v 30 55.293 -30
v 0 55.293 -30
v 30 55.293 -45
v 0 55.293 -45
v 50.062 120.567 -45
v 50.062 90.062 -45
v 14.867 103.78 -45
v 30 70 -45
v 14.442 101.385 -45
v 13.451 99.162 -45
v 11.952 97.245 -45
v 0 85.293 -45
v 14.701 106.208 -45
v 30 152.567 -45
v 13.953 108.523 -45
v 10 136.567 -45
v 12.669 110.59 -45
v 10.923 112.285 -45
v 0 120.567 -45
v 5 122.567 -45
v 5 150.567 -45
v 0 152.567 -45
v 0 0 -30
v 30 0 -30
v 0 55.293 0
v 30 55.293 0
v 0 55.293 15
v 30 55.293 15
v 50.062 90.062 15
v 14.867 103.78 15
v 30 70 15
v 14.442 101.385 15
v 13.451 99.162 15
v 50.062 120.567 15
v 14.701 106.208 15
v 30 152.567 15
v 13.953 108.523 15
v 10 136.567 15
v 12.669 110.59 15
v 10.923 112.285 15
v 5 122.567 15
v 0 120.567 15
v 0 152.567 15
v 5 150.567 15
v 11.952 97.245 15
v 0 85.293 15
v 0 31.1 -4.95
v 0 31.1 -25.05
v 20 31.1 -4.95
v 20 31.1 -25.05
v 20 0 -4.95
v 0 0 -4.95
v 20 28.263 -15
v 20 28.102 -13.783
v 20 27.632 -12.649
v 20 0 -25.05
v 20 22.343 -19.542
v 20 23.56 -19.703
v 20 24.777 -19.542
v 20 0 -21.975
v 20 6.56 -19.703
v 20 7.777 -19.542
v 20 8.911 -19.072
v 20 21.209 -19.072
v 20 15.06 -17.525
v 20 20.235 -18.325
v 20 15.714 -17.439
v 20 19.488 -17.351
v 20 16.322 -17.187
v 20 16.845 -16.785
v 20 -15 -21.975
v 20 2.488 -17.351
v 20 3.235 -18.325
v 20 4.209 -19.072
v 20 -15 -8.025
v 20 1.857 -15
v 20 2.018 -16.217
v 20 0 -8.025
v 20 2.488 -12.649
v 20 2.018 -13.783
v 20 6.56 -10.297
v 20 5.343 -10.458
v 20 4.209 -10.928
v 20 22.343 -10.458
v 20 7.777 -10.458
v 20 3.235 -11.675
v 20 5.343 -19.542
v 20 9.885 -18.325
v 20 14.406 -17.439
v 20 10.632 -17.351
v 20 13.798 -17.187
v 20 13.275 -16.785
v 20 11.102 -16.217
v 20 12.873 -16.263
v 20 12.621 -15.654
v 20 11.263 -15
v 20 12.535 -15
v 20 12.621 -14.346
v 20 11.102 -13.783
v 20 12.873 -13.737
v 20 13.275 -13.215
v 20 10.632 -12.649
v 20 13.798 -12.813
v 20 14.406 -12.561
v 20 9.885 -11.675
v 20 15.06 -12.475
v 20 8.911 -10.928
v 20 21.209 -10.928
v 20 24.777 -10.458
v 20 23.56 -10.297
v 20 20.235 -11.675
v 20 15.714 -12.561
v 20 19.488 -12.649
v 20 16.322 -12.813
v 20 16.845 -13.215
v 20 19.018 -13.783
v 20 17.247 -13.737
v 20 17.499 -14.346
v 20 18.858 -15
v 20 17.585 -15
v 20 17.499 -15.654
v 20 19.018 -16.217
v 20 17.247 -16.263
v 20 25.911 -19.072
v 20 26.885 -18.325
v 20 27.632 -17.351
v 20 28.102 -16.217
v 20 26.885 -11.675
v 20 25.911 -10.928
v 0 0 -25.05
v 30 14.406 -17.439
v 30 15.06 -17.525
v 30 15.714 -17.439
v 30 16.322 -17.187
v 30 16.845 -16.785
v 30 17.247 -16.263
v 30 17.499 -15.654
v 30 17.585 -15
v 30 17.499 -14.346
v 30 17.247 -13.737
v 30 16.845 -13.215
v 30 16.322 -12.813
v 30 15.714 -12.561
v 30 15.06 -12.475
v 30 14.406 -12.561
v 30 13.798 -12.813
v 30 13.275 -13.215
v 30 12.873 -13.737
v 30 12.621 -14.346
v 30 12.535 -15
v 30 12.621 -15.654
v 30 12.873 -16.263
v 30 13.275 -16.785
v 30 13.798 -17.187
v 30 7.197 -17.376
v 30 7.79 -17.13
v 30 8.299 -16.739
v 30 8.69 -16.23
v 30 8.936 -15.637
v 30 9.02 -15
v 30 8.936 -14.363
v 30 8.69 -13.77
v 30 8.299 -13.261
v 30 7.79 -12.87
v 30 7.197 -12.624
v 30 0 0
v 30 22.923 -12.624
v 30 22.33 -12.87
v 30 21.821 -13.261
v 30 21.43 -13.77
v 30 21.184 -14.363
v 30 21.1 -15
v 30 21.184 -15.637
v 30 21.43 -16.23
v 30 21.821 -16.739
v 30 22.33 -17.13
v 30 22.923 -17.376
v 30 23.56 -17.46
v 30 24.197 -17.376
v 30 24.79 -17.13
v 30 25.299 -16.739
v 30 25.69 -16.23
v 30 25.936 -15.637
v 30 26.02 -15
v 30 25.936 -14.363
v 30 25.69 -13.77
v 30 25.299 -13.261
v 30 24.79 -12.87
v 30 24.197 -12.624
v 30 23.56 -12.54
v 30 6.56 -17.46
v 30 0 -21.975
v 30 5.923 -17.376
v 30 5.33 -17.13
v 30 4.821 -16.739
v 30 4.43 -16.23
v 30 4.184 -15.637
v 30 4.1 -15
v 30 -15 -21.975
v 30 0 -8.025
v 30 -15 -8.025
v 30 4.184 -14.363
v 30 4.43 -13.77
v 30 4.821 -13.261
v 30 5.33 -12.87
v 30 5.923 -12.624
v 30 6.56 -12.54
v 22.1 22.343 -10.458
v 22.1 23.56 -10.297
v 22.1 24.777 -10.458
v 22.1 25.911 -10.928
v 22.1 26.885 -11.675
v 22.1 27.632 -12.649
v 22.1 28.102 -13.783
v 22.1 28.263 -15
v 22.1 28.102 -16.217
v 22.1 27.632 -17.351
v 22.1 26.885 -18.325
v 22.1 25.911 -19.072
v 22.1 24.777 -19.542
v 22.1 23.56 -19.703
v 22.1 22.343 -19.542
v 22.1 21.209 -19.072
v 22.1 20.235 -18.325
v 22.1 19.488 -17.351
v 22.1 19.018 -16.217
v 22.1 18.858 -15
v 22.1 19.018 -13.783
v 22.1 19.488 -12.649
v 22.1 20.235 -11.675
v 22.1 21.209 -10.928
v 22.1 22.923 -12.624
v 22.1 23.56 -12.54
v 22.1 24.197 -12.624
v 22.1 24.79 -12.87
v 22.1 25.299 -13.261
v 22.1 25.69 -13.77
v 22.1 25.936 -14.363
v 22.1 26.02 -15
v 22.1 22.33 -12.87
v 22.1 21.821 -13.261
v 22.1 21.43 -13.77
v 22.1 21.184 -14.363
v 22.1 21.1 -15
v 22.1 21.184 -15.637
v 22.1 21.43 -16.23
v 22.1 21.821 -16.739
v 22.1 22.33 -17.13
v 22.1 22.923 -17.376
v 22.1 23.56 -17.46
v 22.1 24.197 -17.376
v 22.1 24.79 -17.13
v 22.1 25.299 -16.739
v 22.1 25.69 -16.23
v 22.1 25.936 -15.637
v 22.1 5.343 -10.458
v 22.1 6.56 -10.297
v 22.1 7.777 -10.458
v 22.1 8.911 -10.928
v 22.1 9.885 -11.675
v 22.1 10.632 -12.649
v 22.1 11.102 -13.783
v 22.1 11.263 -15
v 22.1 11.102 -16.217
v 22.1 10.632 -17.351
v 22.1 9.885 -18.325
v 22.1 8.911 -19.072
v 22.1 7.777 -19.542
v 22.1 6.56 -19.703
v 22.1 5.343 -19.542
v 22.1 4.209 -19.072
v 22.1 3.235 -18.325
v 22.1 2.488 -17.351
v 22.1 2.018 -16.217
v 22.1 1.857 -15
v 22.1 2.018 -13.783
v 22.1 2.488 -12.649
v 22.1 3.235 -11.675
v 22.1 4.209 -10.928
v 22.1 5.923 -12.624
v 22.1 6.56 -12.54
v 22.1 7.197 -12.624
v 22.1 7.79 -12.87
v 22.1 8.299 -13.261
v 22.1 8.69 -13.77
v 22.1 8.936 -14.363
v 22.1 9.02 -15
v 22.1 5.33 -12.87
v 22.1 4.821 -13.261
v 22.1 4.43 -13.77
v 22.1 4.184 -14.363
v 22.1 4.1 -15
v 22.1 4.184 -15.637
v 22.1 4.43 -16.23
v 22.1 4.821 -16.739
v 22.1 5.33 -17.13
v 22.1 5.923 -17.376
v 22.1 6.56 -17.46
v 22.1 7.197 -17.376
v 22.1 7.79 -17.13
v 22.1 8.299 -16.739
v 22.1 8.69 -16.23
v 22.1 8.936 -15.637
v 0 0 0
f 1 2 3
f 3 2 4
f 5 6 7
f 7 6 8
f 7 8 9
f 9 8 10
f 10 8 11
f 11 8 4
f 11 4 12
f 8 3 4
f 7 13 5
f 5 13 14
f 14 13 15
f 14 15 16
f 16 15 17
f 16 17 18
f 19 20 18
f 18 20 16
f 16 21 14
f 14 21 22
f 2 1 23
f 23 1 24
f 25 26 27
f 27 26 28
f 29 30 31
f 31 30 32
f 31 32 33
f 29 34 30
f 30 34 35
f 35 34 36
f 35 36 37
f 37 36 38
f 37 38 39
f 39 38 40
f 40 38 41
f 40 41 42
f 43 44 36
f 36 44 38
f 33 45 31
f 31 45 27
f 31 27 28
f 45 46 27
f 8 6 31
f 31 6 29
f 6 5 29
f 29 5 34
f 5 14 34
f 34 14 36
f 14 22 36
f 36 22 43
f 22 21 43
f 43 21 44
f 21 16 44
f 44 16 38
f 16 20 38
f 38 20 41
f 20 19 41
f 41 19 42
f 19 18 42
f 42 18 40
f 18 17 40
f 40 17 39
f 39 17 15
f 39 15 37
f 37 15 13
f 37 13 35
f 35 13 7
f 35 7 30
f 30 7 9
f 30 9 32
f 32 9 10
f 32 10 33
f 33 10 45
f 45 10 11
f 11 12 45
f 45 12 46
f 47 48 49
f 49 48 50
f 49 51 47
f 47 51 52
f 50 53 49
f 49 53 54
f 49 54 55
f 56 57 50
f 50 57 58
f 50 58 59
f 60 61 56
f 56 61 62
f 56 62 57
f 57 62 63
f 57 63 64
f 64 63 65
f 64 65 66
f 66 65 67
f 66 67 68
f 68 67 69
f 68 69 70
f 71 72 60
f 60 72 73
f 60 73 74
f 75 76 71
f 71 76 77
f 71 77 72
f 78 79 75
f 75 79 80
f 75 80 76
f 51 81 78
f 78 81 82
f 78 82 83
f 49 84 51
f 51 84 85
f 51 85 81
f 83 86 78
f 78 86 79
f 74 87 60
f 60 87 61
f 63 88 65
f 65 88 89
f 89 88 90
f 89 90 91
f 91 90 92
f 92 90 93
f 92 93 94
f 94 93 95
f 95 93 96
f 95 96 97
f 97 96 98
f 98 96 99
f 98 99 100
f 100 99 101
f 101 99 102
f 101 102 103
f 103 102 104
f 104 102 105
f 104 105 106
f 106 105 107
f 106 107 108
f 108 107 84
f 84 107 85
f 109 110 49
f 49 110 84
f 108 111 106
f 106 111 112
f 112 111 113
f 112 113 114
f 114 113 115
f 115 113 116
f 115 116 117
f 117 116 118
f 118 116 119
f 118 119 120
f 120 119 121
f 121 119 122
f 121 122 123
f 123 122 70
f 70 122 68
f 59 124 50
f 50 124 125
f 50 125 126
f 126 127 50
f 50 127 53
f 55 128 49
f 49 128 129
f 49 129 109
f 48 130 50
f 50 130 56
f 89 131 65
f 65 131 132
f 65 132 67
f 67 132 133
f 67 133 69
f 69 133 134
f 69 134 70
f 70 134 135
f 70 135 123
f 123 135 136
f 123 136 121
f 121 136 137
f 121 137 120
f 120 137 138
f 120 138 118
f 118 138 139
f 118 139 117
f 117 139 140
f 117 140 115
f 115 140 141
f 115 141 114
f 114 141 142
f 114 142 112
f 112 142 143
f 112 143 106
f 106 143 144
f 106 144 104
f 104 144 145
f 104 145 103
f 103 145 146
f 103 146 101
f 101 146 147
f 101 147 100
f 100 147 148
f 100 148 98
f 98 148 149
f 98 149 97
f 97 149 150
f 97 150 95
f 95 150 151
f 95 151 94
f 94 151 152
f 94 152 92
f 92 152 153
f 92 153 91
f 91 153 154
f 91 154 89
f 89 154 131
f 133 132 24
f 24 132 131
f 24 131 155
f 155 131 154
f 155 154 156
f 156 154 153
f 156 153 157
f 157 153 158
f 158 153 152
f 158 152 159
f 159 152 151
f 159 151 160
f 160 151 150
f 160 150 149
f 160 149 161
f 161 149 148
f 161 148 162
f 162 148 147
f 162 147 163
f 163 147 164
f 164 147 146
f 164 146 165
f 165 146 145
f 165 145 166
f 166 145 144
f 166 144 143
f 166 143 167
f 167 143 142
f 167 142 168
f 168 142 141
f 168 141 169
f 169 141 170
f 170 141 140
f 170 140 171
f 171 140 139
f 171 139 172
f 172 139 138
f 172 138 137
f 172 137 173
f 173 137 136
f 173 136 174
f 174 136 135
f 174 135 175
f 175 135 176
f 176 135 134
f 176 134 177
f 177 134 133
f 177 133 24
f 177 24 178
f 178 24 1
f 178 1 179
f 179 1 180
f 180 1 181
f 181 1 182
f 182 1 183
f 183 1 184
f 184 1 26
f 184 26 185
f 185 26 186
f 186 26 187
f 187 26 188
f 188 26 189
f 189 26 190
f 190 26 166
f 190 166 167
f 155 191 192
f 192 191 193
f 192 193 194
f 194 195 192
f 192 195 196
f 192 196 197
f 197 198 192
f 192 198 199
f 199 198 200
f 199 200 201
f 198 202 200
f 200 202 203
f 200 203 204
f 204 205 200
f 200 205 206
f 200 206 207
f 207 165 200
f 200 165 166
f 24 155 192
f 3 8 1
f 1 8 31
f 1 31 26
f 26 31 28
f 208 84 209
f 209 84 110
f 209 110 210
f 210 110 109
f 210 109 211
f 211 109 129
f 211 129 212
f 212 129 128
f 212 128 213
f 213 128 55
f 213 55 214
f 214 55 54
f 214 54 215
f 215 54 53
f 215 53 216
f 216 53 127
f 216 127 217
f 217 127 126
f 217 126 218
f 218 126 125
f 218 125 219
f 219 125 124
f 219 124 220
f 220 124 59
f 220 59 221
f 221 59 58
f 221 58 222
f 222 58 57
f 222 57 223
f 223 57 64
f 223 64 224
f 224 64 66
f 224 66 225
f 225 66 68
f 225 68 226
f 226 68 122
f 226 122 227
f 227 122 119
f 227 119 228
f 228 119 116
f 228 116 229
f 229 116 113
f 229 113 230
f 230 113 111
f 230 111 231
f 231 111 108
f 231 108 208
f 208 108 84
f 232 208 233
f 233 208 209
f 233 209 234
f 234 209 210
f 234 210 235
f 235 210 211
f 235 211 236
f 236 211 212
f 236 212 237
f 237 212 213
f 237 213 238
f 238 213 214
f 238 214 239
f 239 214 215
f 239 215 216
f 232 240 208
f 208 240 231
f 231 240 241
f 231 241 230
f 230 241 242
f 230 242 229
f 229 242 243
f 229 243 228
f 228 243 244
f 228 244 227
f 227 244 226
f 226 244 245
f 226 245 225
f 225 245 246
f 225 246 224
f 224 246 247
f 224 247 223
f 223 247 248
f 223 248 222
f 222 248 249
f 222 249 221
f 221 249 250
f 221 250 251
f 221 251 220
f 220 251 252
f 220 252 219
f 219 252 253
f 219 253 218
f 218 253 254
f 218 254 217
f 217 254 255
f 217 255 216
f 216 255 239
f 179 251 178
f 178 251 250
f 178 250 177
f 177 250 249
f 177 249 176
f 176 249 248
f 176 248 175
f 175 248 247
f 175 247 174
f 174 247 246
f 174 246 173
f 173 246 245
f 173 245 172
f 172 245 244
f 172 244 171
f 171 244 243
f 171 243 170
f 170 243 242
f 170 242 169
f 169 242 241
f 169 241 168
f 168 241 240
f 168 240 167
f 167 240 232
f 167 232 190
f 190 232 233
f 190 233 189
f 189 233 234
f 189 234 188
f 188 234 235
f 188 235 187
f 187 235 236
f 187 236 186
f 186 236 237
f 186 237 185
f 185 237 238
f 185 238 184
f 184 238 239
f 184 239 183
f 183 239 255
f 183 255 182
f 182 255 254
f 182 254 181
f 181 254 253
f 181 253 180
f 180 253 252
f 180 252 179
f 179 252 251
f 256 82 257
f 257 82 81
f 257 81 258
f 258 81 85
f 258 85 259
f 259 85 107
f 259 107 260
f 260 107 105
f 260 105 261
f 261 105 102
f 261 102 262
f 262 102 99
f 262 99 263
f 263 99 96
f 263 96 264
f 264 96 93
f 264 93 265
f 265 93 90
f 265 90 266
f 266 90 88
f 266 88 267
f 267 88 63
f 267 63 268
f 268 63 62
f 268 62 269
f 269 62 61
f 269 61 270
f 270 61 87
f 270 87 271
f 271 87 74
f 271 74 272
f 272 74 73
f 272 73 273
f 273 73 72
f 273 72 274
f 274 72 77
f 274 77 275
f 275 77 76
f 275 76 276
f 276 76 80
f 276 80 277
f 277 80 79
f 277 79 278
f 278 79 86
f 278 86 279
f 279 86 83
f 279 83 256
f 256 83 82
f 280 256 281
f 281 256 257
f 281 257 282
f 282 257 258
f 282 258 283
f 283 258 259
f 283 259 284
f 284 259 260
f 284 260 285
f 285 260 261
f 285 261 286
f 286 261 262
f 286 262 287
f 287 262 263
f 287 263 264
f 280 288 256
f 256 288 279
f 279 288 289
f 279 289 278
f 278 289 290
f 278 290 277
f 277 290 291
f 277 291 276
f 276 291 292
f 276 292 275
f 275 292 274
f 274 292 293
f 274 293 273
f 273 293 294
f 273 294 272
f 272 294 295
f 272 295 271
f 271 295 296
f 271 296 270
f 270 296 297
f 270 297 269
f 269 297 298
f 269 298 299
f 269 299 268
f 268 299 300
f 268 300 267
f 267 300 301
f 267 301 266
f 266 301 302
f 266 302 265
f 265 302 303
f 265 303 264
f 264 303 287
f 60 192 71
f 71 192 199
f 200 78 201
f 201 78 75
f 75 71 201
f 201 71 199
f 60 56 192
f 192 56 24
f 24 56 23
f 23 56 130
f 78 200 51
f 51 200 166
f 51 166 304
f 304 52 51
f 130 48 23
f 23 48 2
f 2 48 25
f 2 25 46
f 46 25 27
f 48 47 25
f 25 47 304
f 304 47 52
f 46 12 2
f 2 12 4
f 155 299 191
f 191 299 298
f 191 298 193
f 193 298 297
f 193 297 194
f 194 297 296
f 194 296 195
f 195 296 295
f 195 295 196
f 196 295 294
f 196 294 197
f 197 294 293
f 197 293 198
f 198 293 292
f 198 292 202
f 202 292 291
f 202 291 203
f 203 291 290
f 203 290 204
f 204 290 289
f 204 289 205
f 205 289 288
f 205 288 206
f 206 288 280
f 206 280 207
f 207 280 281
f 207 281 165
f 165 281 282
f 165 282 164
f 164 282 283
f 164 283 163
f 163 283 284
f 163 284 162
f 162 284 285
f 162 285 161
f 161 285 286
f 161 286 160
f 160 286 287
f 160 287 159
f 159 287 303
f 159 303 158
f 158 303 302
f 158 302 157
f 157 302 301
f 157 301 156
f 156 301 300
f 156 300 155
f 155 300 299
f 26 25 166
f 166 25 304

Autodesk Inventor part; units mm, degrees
ref_plane "YZ Plane" through (0, 0, 0) normal (1, 0, 0) x (0, 1, 0)
ref_plane "XZ Plane" through (0, 0, 0) normal (0, 1, 0) x (-1, 0, 0)
sketch "Sketch1" plane through (0, 0, 0) normal (0, 0, 1) x (1, 0, 0)
  line L0 (0, 0) -> (25, 0)
  line L1 (25, 0) -> (25, 40)
  line L2 (25, 40) -> (0, 40)
  line L3 (0, 40) -> (0, 0)
  dimension "d1" = 25
  dimension "d2" = 40
  dimension "d3" = 25
extrude "Extrusion1" add sketch "Sketch1" against normal blind 30
sketch "Sketch2" plane through (25, 0, 0) normal (1, 0, 0) x (0, 0, -1)
  line L0 (0, 0) -> (30, 0) projected
  circle A0 centre (15, 6.56) radius 2.46
extrude "Extrusion2" cut sketch "Sketch2" against normal blind 30
sketch "Sketch3" plane through (0, 0, 0) normal (-1, 0, 0) x (0, 0, 1)
  line L0 (0, 0) -> (-30, 0) projected
  line L1 (-25.05, 0) -> (-4.95, 0)
  line L2 (-4.95, 0) -> (-4.95, 33.12)
  line L3 (-4.95, 33.12) -> (-25.05, 33.12)
  line L4 (-25.05, 33.12) -> (-25.05, 0)
  dimension "d11" = 20.1
extrude "Extrusion3" cut sketch "Sketch3" against normal blind 20
sketch "Sketch4" plane through (0, 0, 0) normal (0, -1, 0) x (1, 0, 0)
  line L0 (20, -4.95) -> (20, -25.05) projected
  line L1 (20, -15) -> (25, -15)
  line L2 (25, 0) -> (25, -30) projected
  line L3 (20, -8.025) -> (25, -8.025)
  line L4 (25, -8.025) -> (25, -21.975)
  line L5 (25, -21.975) -> (20, -21.975)
  line L6 (20, -21.975) -> (20, -8.025)
  line L7 (20, -8.025) -> (25, -21.975) construction
  line L8 (25, -8.025) -> (20, -21.975) construction
  line L9 (25, -12.54) -> (25, -17.46) projected
  point P0 (0, 0)
  point P1 (22.5, -15)
  dimension "d14" = 13.95
extrude "Extrusion4" add sketch "Sketch4" along normal blind 15
sketch "Sketch5" plane through (20, 0, 0) normal (-1, 0, 0) x (0, 0, 1)
  circle A0 centre (-15, 6.56) radius 2.46 projected
  circle A1 centre (-15, 6.56) radius 4.7025
  circle A2 centre (-15, 6.56) radius 2.46 projected
  circle A3 centre (-15, 6.56) radius 2.46
  point P0 (0, 0)
  dimension "d17" = 9.405
extrude "Extrusion5" cut sketch "Sketch5" against normal blind 2.1
sketch "Sketch6" plane through (25, 0, 0) normal (1, 0, 0) x (0, 0, -1)
  circle A0 centre (15, 6.56) radius 4.7025 projected
  line L0 (15, 6.56) -> (15, 23.56)
  circle A1 centre (15, 23.56) radius 2.46
  point P0 (0, 0)
  dimension "d20" = 17
  dimension "d21" = 4.92
extrude "Extrusion6" cut sketch "Sketch6" against normal blind 10 contours A1
sketch "Sketch7" plane through (20, 0, 0) normal (-1, 0, 0) x (0, 0, 1)
  circle A0 centre (-15, 23.56) radius 2.46 projected
  circle A1 centre (-15, 23.56) radius 4.7025
  point P0 (0, 0)
  dimension "d24" = 9.405
extrude "Extrusion7" cut sketch "Sketch7" against normal blind 2.1
sketch "Sketch9" plane through (25, 0, 0) normal (1, 0, 0) x (0, 0, -1)
  circle A0 centre (15, 6.56) radius 2.46 projected
  circle A1 centre (15, 6.56) radius 2.46
  circle A2 centre (15, 23.56) radius 2.46 projected
  circle A3 centre (15, 23.56) radius 2.46
  line L0 (30, 40) -> (30, 0) projected
  line L1 (30, 0) -> (30, 40)
  line L2 (30, 40) -> (0, 40)
  line L3 (0, 40) -> (0, 0)
  line L4 (0, 0) -> (8.025, 0) projected
  line L5 (21.975, 0) -> (21.975, -15)
  line L6 (21.975, -15) -> (8.025, -15)
  line L7 (8.025, -15) -> (8.025, 0)
  line L8 (0, 0) -> (8.025, 0)
  line L9 (21.975, 0) -> (30, 0)
extrude "Extrusion8" add sketch "Sketch9" along normal blind 5
sketch "Sketch10" plane through (0, 40, 0) normal (0, 1, 0) x (1, 0, 0)
  line L0 (0, 30) -> (30, 30) projected
  line L1 (30, 0) -> (0, 0) projected
  line L2 (0, 30) -> (30, 30)
  line L3 (30, 30) -> (30, 0)
  line L4 (30, 0) -> (0, 0)
  line L5 (0, 0) -> (0, 30)
extrude "Extrusion9" add sketch "Sketch10" along normal blind 30
sketch "Sketch12" plane through (30, 0, 0) normal (1, 0, 0) x (0, 0, -1)
  circle A0 centre (15, 6.56) radius 2.46 projected
  line L0 (15, 6.56) -> (15, 15.06)
  circle A1 centre (15, 15.06) radius 2.525
  point P0 (0, 0)
  dimension "d31" = 8.5
  dimension "d33" = 5.05
extrude "Extrusion10" cut sketch "Sketch12" against normal blind 30 contours A1
sketch "Sketch15" plane through (0, 0, -25.05) normal (-1, 0, 0) x (0, 0, 1)
  line L0 (0, 33.12) -> (20.1, 33.12) projected
  line L1 (20.1, 33.12) -> (20.1, 0) projected
  line L2 (0, 33.12) -> (20.1, 33.12)
  line L3 (20.1, 33.12) -> (20.1, 31.1)
  line L4 (20.1, 31.1) -> (0, 31.1)
  line L5 (0, 31.1) -> (0, 33.12)
  point P0 (25.05, 0)
  dimension "d57" = 2.02
extrude "Extrusion13" add sketch "Sketch15" against normal blind 20
sketch "Sketch17" plane through (0, 0, 0) normal (0, 0, 1) x (1, 0, 0)
  line L0 (0, 70) -> (30, 70) projected
  line L1 (30, 70) -> (50.0622, 90.0622)
  line L2 (30, 70) -> (80, 70) construction
  line L3 (11.9522, 97.2454) -> (0, 85.2932)
  line L4 (0, 70) -> (0, 85.2932)
  line L5 (0, 70) -> (0, 0) projected
  line L6 (0, 70) -> (30, 70)
  line L7 (10.923, 112.2849) -> (0, 120.567)
  line L8 (50.0622, 105.3553) -> (50.0622, 120.567)
  line L9 (50.0622, 105.3553) -> (50.0622, 90.0622)
  arc A0 (11.9522, 97.2454) -> (10.923, 112.2849) centre (4.8811, 104.3165) ccw
  line L10 (0, 152.567) -> (30, 152.567)
  line L11 (30, 152.567) -> (50.0622, 120.567)
  line L12 (5, 150.567) -> (0, 152.567)
  line L13 (5, 122.567) -> (0, 120.567)
  line L14 (5, 122.567) -> (10, 136.567)
  line L15 (10, 136.567) -> (5, 150.567)
  dimension "d61" = 45
  dimension "d62" = 32.0271
  dimension "d72" = 10
extrude "Extrusion14" add sketch "Sketch17" against normal blind 30
sketch "Sketch22" plane through (0, 0, 0) normal (0, 0, 1) x (1, 0, 0)
  line L0 (30, 0) -> (30, 70) projected
  line L1 (50.0622, 90.0622) -> (30, 70) projected
  line L2 (30, 70) -> (50.0622, 90.0622)
  line L3 (50.0622, 120.567) -> (50.0622, 90.0622) projected
  line L4 (50.0622, 90.0622) -> (50.0622, 120.567)
  line L5 (30, 152.567) -> (50.0622, 120.567) projected
  line L6 (50.0622, 120.567) -> (30, 152.567)
  line L7 (0, 152.567) -> (30, 152.567) projected
  line L8 (30, 152.567) -> (0, 152.567)
  line L9 (5, 150.567) -> (0, 152.567) projected
  line L10 (0, 152.567) -> (5, 150.567)
  line L11 (5, 150.567) -> (10, 136.567) projected
  line L12 (5, 150.567) -> (10, 136.567)
  line L13 (10, 136.567) -> (5, 122.567) projected
  line L14 (10, 136.567) -> (5, 122.567)
  line L15 (5, 122.567) -> (0, 120.567) projected
  line L16 (5, 122.567) -> (0, 120.567)
  line L17 (0, 120.567) -> (10.923, 112.2849) projected
  line L18 (0, 120.567) -> (10.923, 112.2849)
  line L19 (0, 85.2932) -> (11.9522, 97.2454) projected
  line L20 (11.9522, 97.2454) -> (0, 85.2932)
  line L21 (0, 85.2932) -> (0, 55.2932)
  line L22 (0, 0) -> (0, 85.2932) projected
  line L23 (0, 55.2932) -> (30, 55.2932)
  line L24 (30, 55.2932) -> (30, 70)
  arc A0 (11.9522, 97.2454) -> (10.923, 112.2849) centre (4.8811, 104.3165) ccw
  dimension "d92" = 30
extrude "Extrusion15" add sketch "Sketch22" along normal blind 15
ref_plane "Work Plane1" through (0, 0, -15) normal (0, 0, 1) x (1, 0, 0)
mirror "Mirror1" about plane through (0, 0, -15) normal (0, 0, 1) of "Extrusion15"
properties part number "rec_c_28mm_x_60mm"
